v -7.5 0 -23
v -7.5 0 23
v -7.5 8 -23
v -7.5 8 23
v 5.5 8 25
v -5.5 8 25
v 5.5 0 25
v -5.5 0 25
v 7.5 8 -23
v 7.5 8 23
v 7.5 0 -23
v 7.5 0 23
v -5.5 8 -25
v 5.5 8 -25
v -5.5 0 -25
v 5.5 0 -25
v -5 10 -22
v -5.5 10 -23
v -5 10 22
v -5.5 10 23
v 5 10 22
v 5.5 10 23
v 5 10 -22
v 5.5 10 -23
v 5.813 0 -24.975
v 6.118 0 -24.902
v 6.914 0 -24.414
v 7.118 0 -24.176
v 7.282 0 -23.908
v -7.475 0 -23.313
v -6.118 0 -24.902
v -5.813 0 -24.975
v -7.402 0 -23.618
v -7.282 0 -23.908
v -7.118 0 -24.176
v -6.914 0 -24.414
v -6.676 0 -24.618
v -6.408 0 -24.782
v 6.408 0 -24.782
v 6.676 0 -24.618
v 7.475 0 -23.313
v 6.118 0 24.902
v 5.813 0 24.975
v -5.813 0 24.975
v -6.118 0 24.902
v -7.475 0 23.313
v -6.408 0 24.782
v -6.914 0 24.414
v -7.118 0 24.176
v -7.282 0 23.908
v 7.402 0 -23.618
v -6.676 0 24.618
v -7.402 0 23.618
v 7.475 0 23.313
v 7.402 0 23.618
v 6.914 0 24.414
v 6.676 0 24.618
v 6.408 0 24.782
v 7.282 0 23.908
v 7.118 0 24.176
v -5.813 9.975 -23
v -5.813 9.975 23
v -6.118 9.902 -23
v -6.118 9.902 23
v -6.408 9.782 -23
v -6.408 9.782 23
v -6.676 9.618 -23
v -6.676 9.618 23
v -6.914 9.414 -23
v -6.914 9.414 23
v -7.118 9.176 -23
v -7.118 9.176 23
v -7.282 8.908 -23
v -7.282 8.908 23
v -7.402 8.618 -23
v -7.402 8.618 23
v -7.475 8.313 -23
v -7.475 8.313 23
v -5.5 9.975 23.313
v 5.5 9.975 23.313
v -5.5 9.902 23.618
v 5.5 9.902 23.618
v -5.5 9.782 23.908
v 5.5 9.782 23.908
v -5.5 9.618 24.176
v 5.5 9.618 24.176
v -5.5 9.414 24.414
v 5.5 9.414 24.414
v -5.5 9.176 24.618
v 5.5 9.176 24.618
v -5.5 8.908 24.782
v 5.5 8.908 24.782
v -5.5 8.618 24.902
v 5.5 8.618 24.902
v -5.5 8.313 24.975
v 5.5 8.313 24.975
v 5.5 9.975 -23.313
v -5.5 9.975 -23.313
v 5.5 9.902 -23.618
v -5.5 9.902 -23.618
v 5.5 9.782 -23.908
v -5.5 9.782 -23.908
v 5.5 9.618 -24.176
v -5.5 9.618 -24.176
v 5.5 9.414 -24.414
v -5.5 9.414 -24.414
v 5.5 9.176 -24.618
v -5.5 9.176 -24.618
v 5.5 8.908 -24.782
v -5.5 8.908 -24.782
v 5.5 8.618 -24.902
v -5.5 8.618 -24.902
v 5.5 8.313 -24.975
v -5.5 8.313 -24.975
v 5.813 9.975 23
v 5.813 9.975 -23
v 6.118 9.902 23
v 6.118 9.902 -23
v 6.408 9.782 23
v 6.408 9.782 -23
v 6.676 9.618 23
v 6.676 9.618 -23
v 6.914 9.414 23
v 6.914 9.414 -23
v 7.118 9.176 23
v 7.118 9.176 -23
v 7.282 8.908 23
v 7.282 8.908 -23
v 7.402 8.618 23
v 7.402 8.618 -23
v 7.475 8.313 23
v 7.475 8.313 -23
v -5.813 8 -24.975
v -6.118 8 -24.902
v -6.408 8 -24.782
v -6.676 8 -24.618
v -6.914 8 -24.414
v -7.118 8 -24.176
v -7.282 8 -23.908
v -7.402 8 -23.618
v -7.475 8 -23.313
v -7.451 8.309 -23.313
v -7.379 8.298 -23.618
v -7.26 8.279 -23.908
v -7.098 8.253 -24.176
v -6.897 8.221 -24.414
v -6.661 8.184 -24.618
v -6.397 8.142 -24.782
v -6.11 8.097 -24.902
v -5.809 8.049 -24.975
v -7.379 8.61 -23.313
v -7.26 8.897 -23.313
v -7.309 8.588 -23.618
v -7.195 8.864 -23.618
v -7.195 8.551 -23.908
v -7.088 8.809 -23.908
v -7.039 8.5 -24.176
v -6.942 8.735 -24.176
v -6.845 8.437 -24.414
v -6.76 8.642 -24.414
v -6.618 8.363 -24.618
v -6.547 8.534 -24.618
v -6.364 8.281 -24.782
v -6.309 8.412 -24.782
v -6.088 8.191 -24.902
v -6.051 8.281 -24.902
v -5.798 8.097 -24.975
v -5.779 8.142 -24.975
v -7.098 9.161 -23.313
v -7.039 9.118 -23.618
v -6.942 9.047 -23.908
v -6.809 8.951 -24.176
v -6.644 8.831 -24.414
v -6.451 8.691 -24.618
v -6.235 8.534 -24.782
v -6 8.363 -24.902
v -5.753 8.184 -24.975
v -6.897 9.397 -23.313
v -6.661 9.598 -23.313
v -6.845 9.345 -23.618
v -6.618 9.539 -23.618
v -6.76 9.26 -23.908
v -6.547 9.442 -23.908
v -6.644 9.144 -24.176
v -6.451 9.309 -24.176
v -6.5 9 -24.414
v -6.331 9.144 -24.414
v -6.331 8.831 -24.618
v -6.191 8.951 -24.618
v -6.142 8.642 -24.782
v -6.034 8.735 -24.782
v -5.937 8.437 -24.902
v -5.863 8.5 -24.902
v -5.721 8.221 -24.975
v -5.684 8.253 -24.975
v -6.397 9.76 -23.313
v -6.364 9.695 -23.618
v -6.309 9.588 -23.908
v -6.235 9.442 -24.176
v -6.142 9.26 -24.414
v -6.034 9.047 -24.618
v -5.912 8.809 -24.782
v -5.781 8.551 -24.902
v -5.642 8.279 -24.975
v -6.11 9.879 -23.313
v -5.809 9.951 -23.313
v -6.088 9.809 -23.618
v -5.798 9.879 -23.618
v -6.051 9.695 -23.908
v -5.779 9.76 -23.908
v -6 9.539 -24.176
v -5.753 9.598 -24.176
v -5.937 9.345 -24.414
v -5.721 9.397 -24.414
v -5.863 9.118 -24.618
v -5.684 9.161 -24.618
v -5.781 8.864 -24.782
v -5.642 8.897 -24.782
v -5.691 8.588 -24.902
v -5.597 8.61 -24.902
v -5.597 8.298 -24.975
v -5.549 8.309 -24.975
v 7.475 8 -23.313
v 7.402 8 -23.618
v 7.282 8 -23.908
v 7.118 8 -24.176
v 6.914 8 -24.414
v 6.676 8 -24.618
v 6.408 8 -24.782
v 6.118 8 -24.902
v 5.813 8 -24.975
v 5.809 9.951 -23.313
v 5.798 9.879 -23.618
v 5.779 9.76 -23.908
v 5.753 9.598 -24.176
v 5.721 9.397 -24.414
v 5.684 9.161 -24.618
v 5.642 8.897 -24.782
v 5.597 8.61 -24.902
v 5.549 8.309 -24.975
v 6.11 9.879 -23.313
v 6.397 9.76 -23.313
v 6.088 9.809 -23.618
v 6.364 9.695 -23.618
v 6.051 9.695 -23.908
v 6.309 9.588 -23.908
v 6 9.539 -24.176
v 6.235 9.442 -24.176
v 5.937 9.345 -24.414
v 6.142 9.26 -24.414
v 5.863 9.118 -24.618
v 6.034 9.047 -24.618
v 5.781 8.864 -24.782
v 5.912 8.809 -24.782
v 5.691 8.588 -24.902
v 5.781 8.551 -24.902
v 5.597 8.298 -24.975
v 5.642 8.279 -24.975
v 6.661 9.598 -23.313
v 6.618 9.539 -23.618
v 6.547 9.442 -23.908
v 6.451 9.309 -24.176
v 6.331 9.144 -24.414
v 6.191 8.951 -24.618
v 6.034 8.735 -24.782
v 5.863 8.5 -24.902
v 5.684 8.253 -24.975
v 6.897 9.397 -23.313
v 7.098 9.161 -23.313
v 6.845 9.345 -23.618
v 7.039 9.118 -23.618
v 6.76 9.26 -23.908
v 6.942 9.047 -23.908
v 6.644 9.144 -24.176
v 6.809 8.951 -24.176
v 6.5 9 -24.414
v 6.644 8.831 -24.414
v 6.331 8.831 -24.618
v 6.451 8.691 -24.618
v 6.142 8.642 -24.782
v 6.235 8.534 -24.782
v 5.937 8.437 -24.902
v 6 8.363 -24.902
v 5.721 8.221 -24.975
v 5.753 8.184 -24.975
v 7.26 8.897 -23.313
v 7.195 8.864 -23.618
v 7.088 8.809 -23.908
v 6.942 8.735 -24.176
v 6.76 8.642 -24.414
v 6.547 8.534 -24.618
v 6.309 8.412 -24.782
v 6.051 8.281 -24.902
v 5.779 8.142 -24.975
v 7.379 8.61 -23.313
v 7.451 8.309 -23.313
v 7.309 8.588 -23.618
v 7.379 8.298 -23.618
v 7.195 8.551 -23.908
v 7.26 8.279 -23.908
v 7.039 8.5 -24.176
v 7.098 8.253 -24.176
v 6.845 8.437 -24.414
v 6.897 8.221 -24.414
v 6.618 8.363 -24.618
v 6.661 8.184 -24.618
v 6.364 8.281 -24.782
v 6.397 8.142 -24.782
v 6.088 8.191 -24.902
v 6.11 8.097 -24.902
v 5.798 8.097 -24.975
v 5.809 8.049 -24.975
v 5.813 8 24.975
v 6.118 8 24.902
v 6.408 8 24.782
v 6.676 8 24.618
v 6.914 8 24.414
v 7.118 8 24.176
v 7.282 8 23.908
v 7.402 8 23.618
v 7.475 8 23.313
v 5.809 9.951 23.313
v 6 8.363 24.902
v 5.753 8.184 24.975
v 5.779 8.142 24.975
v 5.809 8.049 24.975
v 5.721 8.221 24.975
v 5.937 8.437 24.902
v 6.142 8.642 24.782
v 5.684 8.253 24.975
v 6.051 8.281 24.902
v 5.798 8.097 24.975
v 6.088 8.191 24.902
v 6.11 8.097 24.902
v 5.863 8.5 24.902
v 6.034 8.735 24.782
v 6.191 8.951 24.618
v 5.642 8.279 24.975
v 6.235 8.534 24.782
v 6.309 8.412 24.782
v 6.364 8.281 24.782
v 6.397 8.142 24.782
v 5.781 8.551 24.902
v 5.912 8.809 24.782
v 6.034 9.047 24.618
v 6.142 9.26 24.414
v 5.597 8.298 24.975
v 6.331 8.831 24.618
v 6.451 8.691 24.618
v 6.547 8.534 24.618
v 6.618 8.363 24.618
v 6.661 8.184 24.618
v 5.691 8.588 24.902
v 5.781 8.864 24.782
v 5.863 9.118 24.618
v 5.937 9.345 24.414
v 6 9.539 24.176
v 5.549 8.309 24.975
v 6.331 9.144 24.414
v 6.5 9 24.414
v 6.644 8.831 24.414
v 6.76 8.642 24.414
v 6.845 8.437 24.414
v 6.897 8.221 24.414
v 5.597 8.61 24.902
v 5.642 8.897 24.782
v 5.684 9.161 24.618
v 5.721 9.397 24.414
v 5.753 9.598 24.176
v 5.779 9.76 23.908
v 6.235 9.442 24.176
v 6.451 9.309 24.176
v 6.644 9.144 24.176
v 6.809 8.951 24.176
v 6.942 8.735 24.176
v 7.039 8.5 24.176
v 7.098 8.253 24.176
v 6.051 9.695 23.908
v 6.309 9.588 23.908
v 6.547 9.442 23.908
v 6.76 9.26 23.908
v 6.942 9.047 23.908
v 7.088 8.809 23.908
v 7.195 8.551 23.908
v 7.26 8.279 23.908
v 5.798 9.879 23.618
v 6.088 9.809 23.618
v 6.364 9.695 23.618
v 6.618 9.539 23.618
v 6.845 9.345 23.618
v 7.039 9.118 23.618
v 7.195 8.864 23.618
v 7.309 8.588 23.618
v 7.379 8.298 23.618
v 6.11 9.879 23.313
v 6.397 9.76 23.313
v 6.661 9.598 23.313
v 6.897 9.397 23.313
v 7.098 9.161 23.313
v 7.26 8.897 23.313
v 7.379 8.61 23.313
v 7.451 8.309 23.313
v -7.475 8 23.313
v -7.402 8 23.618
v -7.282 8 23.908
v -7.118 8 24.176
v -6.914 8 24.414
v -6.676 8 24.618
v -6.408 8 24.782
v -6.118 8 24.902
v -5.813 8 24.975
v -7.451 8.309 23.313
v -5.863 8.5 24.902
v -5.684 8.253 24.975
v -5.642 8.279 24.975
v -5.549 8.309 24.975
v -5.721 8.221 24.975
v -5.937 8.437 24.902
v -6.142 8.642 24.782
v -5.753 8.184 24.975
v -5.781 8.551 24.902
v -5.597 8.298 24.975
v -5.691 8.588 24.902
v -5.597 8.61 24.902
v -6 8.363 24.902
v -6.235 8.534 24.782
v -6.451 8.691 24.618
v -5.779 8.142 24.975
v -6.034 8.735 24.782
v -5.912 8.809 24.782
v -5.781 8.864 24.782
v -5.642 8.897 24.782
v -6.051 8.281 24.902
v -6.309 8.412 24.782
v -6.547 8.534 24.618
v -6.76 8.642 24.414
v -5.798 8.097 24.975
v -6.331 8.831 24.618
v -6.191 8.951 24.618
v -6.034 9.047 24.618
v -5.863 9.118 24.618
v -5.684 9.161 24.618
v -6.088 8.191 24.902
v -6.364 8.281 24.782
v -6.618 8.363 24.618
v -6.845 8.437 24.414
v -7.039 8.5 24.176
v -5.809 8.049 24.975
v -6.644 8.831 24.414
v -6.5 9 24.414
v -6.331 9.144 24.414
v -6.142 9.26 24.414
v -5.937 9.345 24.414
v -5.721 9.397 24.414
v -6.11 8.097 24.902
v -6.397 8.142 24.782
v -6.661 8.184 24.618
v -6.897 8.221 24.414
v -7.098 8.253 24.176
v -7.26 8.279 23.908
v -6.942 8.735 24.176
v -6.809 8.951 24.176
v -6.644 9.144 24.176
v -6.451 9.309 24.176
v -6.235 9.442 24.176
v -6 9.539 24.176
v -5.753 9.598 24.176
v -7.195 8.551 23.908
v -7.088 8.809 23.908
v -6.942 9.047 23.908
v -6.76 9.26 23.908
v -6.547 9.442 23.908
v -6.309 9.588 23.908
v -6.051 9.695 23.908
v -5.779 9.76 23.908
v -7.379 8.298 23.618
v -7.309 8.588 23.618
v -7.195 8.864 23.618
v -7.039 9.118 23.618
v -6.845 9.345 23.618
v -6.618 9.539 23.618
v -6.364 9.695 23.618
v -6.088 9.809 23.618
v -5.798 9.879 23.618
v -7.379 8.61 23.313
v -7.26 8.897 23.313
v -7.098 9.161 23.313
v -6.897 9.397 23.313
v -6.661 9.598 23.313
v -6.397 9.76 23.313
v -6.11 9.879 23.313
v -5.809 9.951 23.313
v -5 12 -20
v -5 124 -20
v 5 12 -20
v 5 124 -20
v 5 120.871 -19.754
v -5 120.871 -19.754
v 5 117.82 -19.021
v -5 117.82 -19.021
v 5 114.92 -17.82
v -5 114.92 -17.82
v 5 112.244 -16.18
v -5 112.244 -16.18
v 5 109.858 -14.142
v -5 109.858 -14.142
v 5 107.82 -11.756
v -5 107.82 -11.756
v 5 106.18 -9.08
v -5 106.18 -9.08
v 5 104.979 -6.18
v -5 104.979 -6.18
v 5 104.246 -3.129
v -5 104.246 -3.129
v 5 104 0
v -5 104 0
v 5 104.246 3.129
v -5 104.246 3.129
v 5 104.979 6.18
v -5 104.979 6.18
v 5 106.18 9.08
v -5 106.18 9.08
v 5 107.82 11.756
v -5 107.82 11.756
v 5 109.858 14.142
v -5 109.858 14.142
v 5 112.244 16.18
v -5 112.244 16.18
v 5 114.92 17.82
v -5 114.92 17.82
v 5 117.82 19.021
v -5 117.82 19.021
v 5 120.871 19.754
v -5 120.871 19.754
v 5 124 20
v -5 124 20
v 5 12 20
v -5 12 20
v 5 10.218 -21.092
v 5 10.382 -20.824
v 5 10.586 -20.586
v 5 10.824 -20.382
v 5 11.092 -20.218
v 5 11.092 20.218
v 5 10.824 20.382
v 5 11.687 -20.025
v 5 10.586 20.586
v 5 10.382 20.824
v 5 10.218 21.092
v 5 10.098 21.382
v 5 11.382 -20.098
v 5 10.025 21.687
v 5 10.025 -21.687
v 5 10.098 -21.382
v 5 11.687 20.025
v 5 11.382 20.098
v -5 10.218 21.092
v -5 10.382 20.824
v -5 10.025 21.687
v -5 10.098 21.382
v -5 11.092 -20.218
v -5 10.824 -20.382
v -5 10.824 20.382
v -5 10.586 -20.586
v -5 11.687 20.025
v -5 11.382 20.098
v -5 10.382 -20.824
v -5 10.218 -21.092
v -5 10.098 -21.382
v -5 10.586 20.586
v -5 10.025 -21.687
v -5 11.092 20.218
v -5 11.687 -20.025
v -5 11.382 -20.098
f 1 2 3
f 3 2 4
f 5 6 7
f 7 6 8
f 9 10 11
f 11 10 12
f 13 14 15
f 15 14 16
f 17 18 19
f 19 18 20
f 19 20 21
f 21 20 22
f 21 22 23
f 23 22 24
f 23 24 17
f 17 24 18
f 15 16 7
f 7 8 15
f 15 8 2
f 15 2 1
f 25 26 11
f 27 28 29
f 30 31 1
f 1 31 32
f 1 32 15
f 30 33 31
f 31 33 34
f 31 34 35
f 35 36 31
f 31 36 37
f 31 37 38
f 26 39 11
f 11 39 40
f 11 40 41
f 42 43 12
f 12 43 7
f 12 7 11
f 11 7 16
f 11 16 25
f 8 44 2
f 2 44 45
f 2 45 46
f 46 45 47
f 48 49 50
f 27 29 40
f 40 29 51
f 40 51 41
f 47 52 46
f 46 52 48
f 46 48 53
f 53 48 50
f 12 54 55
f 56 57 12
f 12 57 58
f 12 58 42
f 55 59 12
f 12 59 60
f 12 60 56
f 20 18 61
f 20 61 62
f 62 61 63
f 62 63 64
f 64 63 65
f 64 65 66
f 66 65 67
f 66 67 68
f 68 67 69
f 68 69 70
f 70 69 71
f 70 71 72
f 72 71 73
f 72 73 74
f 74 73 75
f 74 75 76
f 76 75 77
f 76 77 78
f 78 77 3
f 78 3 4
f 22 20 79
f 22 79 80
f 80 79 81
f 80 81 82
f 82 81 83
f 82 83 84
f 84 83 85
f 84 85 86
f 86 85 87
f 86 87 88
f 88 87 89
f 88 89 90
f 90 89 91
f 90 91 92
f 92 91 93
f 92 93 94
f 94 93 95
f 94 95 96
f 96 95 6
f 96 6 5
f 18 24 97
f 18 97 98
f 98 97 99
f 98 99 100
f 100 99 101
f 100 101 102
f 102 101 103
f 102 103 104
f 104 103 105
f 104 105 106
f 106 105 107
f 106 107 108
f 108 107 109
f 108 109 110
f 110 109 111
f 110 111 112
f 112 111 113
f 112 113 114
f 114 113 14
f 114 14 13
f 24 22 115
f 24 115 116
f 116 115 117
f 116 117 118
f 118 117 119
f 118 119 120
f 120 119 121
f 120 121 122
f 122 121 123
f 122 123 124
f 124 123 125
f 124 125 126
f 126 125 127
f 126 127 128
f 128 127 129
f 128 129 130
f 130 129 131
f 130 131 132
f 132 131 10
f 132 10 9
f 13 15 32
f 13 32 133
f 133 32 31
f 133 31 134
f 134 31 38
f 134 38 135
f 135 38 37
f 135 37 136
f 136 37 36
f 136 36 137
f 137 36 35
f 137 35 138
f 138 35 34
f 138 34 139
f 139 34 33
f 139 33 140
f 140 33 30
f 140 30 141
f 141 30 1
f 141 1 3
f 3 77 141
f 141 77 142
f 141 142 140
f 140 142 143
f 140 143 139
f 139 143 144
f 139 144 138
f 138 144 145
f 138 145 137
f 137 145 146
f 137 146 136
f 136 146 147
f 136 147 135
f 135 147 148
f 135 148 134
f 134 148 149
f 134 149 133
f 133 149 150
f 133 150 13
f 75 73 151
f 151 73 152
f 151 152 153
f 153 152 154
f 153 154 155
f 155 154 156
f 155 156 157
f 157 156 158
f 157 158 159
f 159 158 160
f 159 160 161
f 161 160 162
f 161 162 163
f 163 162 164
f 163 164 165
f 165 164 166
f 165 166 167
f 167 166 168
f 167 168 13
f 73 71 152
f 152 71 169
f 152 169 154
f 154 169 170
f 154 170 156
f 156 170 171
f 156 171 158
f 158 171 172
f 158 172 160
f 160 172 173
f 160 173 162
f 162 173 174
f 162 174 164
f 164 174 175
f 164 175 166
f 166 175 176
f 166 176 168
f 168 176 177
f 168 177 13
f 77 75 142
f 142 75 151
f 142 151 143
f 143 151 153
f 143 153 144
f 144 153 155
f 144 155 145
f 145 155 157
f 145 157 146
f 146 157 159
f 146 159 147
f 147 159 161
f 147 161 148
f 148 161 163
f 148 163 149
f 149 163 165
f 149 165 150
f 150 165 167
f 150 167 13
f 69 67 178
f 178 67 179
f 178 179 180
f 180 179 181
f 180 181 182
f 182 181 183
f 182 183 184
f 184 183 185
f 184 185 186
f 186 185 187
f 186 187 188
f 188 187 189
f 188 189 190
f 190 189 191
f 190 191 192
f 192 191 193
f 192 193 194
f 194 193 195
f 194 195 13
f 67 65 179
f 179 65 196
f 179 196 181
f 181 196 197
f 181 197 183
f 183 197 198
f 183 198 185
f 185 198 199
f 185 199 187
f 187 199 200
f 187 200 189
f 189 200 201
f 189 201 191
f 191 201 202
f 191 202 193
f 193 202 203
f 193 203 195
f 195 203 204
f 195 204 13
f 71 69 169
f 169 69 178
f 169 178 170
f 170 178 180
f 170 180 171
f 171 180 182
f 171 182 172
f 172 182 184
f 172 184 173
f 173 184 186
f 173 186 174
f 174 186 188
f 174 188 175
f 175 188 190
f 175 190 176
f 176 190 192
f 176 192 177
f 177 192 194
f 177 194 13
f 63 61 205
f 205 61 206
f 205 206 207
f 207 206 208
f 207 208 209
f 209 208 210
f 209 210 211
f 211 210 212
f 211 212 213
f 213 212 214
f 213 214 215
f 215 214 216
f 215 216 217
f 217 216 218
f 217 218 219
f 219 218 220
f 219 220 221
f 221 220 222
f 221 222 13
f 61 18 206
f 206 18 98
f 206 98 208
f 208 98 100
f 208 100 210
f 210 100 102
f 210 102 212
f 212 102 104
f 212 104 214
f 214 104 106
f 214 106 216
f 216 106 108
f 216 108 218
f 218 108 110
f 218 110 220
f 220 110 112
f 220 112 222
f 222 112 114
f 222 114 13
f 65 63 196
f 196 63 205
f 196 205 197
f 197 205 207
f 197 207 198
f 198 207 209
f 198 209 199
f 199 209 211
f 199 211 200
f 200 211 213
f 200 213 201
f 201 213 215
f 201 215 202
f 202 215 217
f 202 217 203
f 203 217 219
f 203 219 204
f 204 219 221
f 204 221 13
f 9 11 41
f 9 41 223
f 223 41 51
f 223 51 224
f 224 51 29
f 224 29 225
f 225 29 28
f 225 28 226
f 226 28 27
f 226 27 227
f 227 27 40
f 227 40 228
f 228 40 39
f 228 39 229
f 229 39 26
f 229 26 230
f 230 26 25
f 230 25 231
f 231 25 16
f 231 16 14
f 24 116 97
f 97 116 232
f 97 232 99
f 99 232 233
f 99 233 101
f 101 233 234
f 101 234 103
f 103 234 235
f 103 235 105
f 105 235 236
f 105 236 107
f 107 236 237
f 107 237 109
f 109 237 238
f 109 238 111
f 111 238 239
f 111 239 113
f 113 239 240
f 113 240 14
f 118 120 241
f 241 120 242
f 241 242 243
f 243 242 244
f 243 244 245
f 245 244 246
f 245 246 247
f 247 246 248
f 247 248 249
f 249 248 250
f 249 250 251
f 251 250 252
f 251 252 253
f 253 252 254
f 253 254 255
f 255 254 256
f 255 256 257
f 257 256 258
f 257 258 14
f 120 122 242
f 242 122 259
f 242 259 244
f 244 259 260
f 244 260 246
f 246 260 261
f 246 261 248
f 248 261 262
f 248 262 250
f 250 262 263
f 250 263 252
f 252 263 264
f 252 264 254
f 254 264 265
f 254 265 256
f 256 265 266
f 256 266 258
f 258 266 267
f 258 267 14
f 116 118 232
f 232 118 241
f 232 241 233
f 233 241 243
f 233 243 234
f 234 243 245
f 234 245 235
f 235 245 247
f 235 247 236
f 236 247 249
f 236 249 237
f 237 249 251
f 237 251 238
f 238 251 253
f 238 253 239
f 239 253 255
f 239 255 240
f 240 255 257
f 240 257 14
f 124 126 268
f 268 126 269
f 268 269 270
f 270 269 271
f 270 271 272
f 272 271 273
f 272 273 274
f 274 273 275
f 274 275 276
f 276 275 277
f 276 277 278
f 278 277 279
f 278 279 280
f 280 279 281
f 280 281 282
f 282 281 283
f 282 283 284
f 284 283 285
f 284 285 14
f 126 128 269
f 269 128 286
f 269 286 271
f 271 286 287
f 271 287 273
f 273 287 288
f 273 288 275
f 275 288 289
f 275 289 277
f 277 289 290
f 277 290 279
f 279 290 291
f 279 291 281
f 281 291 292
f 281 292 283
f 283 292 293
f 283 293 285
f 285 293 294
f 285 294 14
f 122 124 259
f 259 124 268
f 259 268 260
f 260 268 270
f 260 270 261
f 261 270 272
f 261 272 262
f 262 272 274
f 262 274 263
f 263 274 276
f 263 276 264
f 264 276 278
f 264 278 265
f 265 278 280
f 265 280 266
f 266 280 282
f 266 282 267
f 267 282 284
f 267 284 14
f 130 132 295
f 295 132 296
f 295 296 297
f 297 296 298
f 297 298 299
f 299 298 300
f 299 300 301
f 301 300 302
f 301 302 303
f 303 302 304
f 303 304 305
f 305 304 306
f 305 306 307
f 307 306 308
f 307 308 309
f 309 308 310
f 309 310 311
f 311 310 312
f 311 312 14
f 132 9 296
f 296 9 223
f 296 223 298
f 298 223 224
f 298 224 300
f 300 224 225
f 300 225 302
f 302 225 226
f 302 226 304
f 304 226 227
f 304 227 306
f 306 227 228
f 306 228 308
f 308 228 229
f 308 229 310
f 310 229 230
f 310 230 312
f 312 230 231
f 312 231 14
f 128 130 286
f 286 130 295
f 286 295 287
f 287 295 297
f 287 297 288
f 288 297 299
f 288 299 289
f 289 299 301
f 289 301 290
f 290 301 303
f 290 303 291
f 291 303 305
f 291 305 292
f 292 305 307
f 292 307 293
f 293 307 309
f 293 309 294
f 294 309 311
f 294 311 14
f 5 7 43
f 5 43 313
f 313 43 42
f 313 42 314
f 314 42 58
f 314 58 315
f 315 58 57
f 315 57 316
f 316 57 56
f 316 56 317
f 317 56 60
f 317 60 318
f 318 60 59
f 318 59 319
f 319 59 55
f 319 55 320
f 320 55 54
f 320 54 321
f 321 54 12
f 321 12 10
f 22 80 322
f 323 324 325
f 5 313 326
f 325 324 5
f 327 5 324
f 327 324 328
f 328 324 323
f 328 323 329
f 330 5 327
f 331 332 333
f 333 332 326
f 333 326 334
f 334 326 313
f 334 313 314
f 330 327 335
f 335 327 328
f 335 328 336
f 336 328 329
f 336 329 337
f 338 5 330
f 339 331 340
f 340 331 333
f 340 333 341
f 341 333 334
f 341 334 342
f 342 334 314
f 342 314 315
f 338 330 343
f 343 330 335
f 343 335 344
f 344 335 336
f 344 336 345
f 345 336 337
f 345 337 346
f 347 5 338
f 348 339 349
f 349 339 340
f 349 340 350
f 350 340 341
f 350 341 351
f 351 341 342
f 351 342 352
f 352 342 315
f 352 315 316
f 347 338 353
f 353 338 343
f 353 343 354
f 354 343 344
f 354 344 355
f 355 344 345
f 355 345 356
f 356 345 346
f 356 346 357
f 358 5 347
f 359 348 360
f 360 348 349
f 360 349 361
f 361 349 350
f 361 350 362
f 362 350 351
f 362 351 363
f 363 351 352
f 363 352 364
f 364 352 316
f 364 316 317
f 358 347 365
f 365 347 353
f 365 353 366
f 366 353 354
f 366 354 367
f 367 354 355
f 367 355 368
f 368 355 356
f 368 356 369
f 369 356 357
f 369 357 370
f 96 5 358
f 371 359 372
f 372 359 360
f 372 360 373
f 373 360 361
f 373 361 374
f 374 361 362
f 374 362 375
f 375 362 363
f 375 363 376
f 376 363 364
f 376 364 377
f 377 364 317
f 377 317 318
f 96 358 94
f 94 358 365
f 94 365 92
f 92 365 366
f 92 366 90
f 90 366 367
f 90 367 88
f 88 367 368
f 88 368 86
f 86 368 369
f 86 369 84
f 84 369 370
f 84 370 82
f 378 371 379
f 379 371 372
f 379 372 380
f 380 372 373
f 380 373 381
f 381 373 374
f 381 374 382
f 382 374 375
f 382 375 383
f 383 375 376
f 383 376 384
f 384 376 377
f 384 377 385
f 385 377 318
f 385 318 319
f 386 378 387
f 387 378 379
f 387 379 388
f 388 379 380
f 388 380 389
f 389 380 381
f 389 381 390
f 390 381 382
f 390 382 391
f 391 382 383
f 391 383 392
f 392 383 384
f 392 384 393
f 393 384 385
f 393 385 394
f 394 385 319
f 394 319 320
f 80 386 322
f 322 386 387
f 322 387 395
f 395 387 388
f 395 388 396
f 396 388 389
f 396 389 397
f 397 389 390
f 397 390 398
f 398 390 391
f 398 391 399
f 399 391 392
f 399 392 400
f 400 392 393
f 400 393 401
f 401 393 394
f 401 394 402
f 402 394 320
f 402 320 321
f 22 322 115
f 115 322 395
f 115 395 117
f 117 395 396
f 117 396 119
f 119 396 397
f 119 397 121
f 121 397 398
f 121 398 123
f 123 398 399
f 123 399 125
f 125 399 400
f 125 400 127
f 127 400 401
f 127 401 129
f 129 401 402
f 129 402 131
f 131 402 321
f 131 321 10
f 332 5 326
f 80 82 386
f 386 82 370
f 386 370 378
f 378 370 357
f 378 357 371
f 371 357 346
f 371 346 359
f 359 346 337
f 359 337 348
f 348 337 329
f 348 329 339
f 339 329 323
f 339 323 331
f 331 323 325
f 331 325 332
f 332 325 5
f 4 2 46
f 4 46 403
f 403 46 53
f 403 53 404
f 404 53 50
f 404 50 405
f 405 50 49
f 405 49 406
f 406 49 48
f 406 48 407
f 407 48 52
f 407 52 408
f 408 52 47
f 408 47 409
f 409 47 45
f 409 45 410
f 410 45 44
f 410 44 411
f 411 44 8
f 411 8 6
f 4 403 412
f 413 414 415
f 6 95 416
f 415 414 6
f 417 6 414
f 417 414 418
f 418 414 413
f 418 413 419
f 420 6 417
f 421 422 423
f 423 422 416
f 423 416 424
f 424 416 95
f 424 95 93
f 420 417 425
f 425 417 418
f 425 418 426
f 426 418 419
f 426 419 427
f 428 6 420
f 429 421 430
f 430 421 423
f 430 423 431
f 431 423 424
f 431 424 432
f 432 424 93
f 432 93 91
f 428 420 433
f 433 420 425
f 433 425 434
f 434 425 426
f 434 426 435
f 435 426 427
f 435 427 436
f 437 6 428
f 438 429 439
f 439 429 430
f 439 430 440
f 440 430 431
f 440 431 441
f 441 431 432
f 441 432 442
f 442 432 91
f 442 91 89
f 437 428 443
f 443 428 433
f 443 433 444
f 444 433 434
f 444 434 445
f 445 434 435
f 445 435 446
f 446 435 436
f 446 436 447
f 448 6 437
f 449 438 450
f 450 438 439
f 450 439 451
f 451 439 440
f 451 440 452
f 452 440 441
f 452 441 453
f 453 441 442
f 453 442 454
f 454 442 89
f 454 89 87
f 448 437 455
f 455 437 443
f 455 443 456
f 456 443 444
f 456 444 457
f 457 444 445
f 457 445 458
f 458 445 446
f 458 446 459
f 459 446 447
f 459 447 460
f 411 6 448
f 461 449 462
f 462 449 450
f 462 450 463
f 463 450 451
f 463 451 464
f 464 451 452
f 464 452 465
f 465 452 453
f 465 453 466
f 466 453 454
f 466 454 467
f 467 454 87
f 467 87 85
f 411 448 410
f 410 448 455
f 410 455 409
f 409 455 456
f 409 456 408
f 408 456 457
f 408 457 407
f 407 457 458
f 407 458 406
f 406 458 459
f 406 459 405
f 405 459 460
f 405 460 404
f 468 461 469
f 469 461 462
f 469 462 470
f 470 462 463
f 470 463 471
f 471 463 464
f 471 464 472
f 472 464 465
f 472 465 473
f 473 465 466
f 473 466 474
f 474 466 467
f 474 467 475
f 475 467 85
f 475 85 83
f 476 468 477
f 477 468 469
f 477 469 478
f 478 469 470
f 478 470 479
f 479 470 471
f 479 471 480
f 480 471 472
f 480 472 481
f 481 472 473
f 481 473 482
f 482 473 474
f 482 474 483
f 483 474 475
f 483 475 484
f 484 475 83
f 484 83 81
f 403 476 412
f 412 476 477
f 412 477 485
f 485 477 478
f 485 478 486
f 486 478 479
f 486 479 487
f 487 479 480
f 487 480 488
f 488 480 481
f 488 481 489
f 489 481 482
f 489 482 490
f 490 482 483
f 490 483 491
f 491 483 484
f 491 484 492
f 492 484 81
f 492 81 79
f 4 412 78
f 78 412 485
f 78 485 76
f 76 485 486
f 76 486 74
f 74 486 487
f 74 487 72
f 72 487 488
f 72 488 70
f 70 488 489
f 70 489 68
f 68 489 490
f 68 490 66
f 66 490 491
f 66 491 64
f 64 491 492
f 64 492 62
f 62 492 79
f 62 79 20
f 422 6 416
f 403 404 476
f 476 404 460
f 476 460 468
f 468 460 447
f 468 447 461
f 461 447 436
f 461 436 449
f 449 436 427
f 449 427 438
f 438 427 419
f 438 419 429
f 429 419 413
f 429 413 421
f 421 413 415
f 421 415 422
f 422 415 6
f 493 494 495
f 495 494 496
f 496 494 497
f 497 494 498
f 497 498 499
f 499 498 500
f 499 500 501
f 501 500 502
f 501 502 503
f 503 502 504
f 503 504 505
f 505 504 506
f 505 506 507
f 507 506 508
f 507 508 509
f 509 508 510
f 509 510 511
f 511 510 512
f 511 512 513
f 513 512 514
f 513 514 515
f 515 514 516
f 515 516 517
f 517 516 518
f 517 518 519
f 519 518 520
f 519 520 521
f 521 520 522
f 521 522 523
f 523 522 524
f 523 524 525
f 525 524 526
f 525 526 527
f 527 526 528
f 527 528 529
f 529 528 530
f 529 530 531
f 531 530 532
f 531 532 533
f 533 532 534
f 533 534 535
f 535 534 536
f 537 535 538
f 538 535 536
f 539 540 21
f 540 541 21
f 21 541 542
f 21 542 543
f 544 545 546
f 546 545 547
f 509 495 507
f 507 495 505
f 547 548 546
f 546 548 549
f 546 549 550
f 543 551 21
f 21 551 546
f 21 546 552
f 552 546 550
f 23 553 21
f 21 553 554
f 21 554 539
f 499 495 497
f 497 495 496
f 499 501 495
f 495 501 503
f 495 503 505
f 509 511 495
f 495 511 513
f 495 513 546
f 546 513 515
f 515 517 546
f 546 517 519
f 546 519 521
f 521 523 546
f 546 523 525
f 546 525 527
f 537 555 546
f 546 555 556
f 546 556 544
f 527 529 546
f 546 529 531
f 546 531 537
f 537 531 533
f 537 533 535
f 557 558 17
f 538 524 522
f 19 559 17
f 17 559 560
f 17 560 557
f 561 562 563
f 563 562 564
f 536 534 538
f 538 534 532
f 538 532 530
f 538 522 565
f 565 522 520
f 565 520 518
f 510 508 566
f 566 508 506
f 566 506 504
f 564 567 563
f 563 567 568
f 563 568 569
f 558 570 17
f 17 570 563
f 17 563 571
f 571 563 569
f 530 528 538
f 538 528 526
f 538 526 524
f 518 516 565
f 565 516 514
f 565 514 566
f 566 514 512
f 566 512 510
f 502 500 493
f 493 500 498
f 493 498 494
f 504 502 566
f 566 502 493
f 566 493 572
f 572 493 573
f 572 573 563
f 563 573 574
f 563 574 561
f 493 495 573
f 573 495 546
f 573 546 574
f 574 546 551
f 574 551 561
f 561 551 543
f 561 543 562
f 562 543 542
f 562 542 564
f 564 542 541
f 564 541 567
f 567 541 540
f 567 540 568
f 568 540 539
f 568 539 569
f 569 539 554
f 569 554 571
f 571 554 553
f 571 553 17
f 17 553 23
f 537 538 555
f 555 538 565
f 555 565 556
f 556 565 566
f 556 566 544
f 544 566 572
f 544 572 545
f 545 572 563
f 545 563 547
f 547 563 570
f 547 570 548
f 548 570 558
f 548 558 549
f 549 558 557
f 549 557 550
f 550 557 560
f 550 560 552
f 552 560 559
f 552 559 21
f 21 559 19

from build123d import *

# Parameters (mm, degrees)
SKETCH_1_W      = 15
SKETCH_1_H      = 50
EXTRUDE_1_DEPTH = 10
FILLET_1_R      = 2
FILLET_2_R      = 2
EXTRUDE_3_DEPTH = 5
FILLET_3_R      = 2


with BuildPart() as part:
    # 스케치1 → 보스-돌출1 (new body)
    with BuildSketch(Plane(origin=(0, 0, 0), x_dir=(1, 0, 0), z_dir=(0, 1, 0))):
        Rectangle(SKETCH_1_W, SKETCH_1_H)
    extrude(amount=EXTRUDE_1_DEPTH)

    # 필렛1
    fillet_1_edges = [part.edges().sort_by_distance(p)[0] for p in [
        (7.5, 10, 0),
        (0, 10, -25),
        (-7.5, 10, 0),
        (0, 10, 25),
    ]]
    fillet(fillet_1_edges, radius=FILLET_1_R)

    # 필렛2
    # the kernel refuses this fillet: 2 mm, written as the material it takes off along each edge
    with BuildSketch(Plane(origin=(-5.5, 8, 23), x_dir=(-1, 0, 0), z_dir=(0, 0, 1))) as fillet_2_piece_1_section:
        Polygon((0, 0), (FILLET_2_R, 0), (FILLET_2_R, -FILLET_2_R), (0, -FILLET_2_R), align=None)
    fillet_2_piece_1 = extrude(amount=FILLET_2_R, mode=Mode.PRIVATE)
    fillet_2_piece_1 = fillet_2_piece_1 - Plane(origin=(-5.5, 8, 23), x_dir=(0.7071067811865475, -0.7071067811865475, 0), z_dir=(0, 0, 1)) * Sphere(FILLET_2_R, mode=Mode.PRIVATE)
    add(fillet_2_piece_1, mode=Mode.SUBTRACT)
    with BuildSketch(Plane(origin=(-5.5, 8, -23), x_dir=(0, 0, -1), z_dir=(-1, 0, 0))) as fillet_2_piece_2_section:
        Polygon((0, 0), (FILLET_2_R, 0), (FILLET_2_R, -FILLET_2_R), (0, -FILLET_2_R), align=None)
    fillet_2_piece_2 = extrude(amount=FILLET_2_R, mode=Mode.PRIVATE)
    fillet_2_piece_2 = fillet_2_piece_2 - Plane(origin=(-5.5, 8, -23), x_dir=(0, -0.7071067811865475, 0.7071067811865475), z_dir=(-1, 0, 0)) * Sphere(FILLET_2_R, mode=Mode.PRIVATE)
    add(fillet_2_piece_2, mode=Mode.SUBTRACT)
    with BuildSketch(Plane(origin=(5.5, 8, 23), x_dir=(1, 0, 0), z_dir=(0, 0, 1))) as fillet_2_piece_3_section:
        Polygon((0, 0), (FILLET_2_R, 0), (FILLET_2_R, FILLET_2_R), (0, FILLET_2_R), align=None)
    fillet_2_piece_3 = extrude(amount=FILLET_2_R, mode=Mode.PRIVATE)
    fillet_2_piece_3 = fillet_2_piece_3 - Plane(origin=(5.5, 8, 23), x_dir=(-0.7071067811865475, -0.7071067811865475, 0), z_dir=(0, 0, 1)) * Sphere(FILLET_2_R, mode=Mode.PRIVATE)
    add(fillet_2_piece_3, mode=Mode.SUBTRACT)
    with BuildSketch(Plane(origin=(5.5, 8, -23), x_dir=(0, 0, -1), z_dir=(1, 0, 0))) as fillet_2_piece_4_section:
        Polygon((0, 0), (FILLET_2_R, 0), (FILLET_2_R, FILLET_2_R), (0, FILLET_2_R), align=None)
    fillet_2_piece_4 = extrude(amount=FILLET_2_R, mode=Mode.PRIVATE)
    fillet_2_piece_4 = fillet_2_piece_4 - Plane(origin=(5.5, 8, -23), x_dir=(0, -0.7071067811865475, 0.7071067811865475), z_dir=(1, 0, 0)) * Sphere(FILLET_2_R, mode=Mode.PRIVATE)
    add(fillet_2_piece_4, mode=Mode.SUBTRACT)
    with BuildSketch(Plane(origin=(7.5, -5, -25), x_dir=(0, 0, 1), z_dir=(0, 1, 0)), Plane(origin=(7.5, -5, 25), x_dir=(-1, 0, 0), z_dir=(0, 1, 0))) as fillet_2_piece_5:
        with BuildLine():
            CenterArc((FILLET_2_R, -FILLET_2_R), FILLET_2_R, 90, 90)
            Line((0, -FILLET_2_R), (0, 0))
            Line((0, 0), (FILLET_2_R, 0))
        make_face()
    extrude(amount=13, mode=Mode.SUBTRACT)
    with BuildSketch(Plane(origin=(-7.5, -5, 25), x_dir=(1, 0, 0), z_dir=(0, 1, 0)), Plane(origin=(-7.5, -5, -25), x_dir=(0, 0, 1), z_dir=(0, 1, 0))) as fillet_2_piece_6:
        with BuildLine():
            CenterArc((FILLET_2_R, FILLET_2_R), FILLET_2_R, 180, 90)
            Line((0, FILLET_2_R), (0, 0))
            Line((0, 0), (FILLET_2_R, 0))
        make_face()
    extrude(amount=13, mode=Mode.SUBTRACT)

    # 스케치4 → 보스-돌출3 (add, symmetric)
    with BuildSketch(Plane(origin=(0, 0, 0), x_dir=(0, 0, -1), z_dir=(1, 0, 0))):
        with BuildLine():
            Line((20, 0), (-20, 0))
            Line((-20, 0), (-20, 104))
            Line((-20, 104), (-20, 124))
            ThreePointArc((-20, 124), (0, 104), (20, 124))
            Line((20, 124), (20, 104))
            Line((20, 104), (20, 0))
        make_face()
    extrude(amount=EXTRUDE_3_DEPTH, both=True)

    # 필렛3
    fillet_3_edges = [part.edges().sort_by_distance(p)[0] for p in [
        (0, 10, -20),
        (0, 10, 20),
    ]]
    fillet(fillet_3_edges, radius=FILLET_3_R)


solid = part.part
